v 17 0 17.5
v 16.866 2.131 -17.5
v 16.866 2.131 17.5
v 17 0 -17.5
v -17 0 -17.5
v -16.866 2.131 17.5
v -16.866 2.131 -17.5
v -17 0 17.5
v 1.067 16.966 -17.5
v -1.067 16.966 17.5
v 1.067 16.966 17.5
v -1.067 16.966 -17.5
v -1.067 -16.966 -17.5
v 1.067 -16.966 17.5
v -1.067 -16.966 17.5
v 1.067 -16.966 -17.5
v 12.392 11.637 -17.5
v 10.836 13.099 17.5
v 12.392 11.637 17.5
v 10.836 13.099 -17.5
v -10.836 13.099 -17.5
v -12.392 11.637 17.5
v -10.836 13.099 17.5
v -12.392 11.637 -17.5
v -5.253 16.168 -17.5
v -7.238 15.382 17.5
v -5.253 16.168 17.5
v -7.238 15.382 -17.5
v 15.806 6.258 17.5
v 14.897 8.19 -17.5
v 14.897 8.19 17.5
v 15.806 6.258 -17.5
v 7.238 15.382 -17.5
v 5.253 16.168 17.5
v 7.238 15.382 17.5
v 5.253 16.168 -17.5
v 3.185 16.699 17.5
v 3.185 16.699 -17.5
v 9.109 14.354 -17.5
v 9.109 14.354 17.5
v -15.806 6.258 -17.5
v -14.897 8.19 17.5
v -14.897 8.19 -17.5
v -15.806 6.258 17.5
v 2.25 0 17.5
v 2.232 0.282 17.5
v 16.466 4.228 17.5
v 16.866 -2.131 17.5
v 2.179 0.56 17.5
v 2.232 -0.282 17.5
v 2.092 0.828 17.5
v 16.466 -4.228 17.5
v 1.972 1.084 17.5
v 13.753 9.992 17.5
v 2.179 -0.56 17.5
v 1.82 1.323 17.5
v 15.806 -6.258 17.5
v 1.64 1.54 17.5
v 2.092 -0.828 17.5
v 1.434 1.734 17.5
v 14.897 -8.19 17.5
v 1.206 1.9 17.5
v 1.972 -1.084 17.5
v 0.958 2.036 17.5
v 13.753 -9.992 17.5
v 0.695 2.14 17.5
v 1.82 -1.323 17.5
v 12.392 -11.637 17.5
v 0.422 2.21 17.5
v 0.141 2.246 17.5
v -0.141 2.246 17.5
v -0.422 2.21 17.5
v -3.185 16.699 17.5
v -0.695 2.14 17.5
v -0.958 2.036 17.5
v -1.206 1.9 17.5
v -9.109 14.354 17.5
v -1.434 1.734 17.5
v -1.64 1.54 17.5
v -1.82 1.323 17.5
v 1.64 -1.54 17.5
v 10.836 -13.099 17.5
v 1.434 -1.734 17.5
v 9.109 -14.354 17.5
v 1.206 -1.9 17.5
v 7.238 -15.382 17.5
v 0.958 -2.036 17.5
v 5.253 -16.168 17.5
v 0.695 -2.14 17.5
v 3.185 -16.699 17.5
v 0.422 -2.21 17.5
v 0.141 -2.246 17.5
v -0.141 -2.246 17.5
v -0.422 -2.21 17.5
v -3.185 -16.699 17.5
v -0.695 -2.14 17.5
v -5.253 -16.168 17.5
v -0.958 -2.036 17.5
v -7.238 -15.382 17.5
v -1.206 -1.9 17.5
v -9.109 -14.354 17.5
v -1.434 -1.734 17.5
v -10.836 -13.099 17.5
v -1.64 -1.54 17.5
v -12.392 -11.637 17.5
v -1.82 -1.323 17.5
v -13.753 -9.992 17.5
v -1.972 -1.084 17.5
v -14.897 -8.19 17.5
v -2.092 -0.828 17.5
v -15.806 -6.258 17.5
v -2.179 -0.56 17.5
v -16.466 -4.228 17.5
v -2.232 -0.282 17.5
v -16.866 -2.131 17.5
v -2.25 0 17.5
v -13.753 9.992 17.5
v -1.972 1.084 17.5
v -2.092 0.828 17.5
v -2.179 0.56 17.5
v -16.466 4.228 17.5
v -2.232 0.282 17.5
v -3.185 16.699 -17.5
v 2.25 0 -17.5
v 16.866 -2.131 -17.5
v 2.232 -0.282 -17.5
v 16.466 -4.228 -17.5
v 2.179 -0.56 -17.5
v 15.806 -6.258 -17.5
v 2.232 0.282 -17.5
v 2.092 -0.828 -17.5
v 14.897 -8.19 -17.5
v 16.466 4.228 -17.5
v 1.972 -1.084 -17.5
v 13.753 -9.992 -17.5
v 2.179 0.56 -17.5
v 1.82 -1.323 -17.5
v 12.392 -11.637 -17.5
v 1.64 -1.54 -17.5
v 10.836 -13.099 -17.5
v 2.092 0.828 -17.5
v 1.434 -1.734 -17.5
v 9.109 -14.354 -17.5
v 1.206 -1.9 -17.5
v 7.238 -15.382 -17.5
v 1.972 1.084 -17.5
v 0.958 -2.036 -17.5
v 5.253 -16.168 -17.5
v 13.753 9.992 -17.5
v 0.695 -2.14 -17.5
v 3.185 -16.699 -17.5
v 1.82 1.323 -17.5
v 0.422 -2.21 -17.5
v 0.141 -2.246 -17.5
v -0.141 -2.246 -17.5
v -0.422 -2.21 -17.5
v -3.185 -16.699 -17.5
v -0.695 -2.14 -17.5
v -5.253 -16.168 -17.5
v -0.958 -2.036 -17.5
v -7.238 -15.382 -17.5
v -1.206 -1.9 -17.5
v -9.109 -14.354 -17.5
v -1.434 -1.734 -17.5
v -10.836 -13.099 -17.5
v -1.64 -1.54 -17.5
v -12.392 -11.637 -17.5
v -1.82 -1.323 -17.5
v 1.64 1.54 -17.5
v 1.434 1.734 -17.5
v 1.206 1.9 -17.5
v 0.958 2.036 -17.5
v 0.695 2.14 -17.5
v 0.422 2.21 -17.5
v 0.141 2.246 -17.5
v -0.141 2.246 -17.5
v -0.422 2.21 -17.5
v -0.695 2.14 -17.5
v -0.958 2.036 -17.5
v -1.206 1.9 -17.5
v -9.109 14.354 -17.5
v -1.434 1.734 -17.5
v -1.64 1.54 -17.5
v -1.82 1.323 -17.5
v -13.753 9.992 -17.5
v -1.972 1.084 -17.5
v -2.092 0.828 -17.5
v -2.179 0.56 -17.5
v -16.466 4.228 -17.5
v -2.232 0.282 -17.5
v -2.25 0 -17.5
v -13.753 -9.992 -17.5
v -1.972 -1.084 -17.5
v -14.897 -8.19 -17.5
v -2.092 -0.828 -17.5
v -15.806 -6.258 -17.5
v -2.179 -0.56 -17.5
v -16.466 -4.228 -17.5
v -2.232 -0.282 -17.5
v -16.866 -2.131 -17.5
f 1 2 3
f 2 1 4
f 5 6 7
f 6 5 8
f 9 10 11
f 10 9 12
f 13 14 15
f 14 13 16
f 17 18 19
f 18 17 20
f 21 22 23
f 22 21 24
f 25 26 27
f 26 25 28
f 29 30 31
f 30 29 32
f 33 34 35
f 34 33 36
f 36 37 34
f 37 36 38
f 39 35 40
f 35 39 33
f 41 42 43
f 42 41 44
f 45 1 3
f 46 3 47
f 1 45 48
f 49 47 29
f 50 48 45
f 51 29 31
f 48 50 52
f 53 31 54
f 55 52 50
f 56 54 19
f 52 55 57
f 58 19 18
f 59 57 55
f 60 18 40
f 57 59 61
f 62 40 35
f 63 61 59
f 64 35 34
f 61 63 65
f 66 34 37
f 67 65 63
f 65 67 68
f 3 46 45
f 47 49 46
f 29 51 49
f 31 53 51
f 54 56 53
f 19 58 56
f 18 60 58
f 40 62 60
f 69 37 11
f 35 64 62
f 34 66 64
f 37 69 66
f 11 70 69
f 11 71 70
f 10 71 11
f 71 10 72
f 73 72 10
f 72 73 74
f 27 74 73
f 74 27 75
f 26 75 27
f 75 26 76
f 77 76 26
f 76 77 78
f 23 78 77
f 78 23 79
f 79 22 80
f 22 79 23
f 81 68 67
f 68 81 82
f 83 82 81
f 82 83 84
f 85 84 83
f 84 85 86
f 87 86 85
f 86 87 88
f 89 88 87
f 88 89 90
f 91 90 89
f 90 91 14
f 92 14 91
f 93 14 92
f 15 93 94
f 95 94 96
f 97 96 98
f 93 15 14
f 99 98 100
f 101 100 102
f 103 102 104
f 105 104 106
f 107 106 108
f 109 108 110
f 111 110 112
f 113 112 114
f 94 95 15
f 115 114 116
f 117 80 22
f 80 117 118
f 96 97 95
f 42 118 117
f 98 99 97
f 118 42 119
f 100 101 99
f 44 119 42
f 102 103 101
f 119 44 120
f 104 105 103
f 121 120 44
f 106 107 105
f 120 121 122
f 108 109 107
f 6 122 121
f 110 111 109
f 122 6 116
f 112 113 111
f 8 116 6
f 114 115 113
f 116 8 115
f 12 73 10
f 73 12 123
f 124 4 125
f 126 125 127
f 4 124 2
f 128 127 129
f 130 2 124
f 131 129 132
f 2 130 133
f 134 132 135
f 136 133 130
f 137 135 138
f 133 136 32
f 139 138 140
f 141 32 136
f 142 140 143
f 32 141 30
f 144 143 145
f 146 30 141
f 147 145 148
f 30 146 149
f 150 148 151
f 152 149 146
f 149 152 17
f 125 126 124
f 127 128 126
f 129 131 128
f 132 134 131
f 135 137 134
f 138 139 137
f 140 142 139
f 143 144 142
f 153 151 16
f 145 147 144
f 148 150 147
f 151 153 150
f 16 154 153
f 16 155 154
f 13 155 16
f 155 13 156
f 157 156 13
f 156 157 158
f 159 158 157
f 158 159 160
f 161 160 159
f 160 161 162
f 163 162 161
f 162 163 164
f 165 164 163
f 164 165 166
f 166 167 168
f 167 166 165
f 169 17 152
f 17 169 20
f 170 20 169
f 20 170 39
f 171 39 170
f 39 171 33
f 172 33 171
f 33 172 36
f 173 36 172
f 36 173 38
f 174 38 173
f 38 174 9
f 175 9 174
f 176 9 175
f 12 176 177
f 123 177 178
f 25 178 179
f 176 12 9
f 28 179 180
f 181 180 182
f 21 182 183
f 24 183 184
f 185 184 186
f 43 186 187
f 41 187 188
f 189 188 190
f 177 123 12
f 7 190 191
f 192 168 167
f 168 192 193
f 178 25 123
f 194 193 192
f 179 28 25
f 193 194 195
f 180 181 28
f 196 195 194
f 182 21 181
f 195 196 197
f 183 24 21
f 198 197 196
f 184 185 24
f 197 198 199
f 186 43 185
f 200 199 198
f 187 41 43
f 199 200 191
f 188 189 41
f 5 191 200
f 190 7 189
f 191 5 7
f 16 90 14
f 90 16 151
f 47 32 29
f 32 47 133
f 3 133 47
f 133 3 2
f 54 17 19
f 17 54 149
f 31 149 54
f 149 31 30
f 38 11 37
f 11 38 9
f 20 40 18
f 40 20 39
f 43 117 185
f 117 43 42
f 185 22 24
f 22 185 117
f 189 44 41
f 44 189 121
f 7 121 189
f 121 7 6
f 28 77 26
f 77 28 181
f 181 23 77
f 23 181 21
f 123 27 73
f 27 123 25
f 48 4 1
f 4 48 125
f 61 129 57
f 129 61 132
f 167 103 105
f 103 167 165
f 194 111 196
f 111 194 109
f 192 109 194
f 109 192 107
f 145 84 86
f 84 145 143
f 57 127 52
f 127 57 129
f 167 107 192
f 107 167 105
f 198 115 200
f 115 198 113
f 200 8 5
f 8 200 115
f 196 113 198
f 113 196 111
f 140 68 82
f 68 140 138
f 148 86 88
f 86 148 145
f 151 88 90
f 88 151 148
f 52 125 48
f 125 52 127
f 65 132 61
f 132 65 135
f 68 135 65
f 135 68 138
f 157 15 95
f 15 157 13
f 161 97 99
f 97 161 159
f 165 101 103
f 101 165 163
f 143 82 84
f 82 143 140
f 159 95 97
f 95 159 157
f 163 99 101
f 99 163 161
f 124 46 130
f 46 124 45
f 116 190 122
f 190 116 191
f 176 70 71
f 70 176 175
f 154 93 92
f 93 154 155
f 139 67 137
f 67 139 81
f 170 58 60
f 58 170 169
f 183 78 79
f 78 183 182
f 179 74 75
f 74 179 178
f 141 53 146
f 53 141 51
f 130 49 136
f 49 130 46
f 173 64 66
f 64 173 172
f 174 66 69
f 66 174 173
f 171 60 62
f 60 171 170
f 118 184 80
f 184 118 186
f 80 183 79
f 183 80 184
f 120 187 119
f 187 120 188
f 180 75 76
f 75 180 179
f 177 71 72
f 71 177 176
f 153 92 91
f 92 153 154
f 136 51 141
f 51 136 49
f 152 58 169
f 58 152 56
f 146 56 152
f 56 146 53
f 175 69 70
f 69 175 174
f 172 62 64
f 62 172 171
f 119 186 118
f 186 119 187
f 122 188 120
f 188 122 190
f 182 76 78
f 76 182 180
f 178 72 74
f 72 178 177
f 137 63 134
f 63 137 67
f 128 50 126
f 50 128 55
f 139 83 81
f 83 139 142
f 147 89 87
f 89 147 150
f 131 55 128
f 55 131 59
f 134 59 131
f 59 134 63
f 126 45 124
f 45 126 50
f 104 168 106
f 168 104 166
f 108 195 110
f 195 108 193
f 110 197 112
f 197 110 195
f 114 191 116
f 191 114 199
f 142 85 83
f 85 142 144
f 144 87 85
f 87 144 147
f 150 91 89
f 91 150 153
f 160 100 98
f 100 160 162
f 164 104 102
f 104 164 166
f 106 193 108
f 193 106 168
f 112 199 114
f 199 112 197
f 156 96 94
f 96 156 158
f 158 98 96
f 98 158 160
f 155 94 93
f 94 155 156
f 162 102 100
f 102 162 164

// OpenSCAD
$fn = 50;


difference() {
	union() {
		translate(v = [0, 0, -17.5000000000]) {
			cylinder(h = 35, r = 17.0000000000);
		}
	}
	union() {
		translate(v = [0, 0, -100.0000000000]) {
			cylinder(h = 200, r = 2.2500000000);
		}
	}
}
